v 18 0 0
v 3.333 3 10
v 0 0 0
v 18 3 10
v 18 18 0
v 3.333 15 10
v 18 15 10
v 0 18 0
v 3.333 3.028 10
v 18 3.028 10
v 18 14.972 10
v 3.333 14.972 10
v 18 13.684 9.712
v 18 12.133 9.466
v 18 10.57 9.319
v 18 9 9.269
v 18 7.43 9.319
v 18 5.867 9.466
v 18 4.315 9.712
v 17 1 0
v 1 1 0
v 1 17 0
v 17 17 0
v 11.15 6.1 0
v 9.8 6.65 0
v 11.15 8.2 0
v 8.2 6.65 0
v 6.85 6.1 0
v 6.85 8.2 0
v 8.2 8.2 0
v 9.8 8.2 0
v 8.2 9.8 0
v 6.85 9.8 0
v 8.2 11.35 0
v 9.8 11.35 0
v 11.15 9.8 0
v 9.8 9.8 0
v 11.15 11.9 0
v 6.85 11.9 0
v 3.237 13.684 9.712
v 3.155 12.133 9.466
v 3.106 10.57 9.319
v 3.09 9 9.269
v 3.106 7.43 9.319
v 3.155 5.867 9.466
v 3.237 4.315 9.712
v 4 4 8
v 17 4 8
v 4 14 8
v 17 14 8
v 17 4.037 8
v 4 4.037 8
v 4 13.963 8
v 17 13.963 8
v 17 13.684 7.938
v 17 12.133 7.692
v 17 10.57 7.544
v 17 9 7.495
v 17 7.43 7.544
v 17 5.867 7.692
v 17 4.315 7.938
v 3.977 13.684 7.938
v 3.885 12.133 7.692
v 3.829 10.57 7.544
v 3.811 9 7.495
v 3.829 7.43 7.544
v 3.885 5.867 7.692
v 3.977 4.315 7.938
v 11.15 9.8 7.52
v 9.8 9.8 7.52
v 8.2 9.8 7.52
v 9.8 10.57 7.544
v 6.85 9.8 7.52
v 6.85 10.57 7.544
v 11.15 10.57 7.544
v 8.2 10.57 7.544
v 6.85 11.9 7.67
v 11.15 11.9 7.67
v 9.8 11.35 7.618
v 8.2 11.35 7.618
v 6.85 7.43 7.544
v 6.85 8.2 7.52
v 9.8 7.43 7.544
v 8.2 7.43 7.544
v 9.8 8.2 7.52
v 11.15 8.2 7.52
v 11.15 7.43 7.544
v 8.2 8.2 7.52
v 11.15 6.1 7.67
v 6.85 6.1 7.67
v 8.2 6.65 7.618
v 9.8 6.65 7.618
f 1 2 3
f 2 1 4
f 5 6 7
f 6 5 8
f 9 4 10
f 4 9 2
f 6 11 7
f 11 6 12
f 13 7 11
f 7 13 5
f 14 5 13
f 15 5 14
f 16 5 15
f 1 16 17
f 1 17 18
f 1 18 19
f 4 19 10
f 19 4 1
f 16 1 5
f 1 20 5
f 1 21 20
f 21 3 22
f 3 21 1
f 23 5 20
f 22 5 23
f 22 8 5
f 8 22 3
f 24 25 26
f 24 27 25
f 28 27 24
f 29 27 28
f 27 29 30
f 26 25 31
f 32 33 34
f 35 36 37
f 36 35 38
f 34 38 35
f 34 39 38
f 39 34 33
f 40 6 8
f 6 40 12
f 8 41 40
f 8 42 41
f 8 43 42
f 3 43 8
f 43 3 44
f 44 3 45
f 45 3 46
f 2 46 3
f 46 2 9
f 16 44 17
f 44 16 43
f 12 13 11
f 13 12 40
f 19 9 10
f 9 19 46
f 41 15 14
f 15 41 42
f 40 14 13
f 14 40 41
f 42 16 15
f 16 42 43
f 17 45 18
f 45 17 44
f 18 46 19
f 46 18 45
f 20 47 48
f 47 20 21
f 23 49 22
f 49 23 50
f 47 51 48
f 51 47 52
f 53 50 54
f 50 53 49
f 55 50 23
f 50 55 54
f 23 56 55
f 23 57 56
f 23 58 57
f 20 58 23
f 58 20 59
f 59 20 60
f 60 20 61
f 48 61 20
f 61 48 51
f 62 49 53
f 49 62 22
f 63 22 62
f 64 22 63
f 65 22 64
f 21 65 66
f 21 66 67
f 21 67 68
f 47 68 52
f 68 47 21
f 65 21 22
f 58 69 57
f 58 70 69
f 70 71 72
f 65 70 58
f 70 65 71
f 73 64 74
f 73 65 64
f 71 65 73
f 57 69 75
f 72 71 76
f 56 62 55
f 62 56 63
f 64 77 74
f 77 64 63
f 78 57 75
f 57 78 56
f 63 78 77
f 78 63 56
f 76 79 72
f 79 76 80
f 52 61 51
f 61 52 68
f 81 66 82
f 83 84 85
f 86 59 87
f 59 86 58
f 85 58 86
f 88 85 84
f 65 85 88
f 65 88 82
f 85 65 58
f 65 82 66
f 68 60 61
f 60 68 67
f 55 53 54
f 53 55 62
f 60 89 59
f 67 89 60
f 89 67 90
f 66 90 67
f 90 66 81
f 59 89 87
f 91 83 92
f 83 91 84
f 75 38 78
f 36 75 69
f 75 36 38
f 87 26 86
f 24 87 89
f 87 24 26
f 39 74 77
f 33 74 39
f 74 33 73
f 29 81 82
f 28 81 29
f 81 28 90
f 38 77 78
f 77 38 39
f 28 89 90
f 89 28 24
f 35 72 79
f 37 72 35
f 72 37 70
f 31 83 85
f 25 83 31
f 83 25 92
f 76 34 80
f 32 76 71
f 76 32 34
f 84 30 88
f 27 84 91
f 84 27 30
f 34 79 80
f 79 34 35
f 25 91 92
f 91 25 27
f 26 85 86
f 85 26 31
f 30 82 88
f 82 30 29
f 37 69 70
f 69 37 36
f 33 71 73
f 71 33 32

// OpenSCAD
$fn = 100;

module mountingCross(width, length, barWidth, height, useSupport = false)
{
    diameter = 6;
    barLength = 4.7;
    
    rotate(90)
    difference()
    {
        //cylinder(d = diameter, h = height);
        union()
        {
            //cylinder(d = diameter, h = height);
            translate(- [width / 2, length / 2, 0])
            cube([width, length, height], centered=true);

            if(useSupport)
            {
                translate([0,-50,0])
                cube([0.5, 100, 2 * height / 3]);
            }
        }

        translate([-barWidth / 2, -barLength / 2, 0])
        cube([barWidth, barLength, height]);
        
        
        rotate(90)
        {
            translate([-barWidth / 2, -barLength, 0])
            cube([barWidth, barLength * 2, height]);
        }
    }
}
module stabilizerMounts(size, holeSize, interDistance, startHeight)
{
    for(i = [-1, 1])
    {
        translate([-size[0] / 2, interDistance * i - size[1] / 2, startHeight])
        difference()
        {
            cube(size);
            translate([size[0] / 2 - holeSize[0] / 2, size[1] / 2 - holeSize[1] / 2, 0])
            cube([holeSize[0], holeSize[1], size[2]]);
            //rotate(90)
            //children(0);
        }
    }
}

module keycapShape(width, length, height, topWidth, topLength, roundTop = true)
{
    //Parameters
    //width = 18;
    //length = 18;
    //height = 12;
    roundoffRadius = 25;

    //Calculating the angles of the "cutters"

    sideDifference = (width - topWidth) / 2;
    sideCutAngle = atan(height / sideDifference);
    frontDifference = (length - topLength);
    frontCutAngle = atan(length / frontDifference);
    
    roundoffHeight = sqrt(pow(roundoffRadius, 2) - pow(topLength / 2, 2));

    difference()
    {
        cube([width, length, height]);

        translate([-1,0,0])
        for(i = [0 , 1])
        {
            translate([0,i * length,0])
            mirror([0,i,0])
            rotate(sideCutAngle, [1,0,0])
            cube([width * 2, length * 2, height * 2]);
        }
        
        //Cutting of the front face
        translate([-1,0,0]);
        rotate(-frontCutAngle, [0,1,0])
        cube([width * 2, length * 2, height * 2]);

        if(roundTop)
        {
            //Rounding off the top
            translate([0, length / 2, height + roundoffHeight])
            rotate(90, [0,1,0])
            cylinder(r = roundoffRadius, h = length * 2);
        }
    }
    
}

module supportV(width, length, height)
{
    cubeWidth = sqrt(pow(width / 2, 2) + pow(height, 2));
    angle = atan(height / (width / 2));

    translate([0, -length / 2, -height])
    for(i = [0,1])
    {
        mirror([i,0,0])
        rotate(-angle, [0,1,0])
        cube([cubeWidth, length, height]);
    }
}

module supportTriangle(width, length, height)
{
    intersection()
    {
        supportV(width, length, height);
        rotate(90)
        supportV(width, length, height);
    }
}

module keycap(outerSize, topSize, roundTop = true, useSupport = true)
{
    width = outerSize[0];
    length = outerSize[1];
    //height = 12;
    height = 10;
    topWidth = topSize[0];
    topLength = topSize[1];

    thickness = 1;
    supportHeight = 4;

    crossStartHeight = 0;

    intersection()
    {
        keycapShape(width, length, height, topWidth, topLength, roundTop = roundTop);
        union()
        {
            difference()
            {
                keycapShape(width, length, height, topWidth, topLength, roundTop = roundTop);
                translate([thickness, thickness, 0])
                keycapShape(width - thickness * 2, length - thickness * 2, height - thickness * 2, topWidth - thickness * 2, topLength - thickness * 2, roundTop = roundTop);
            }

            if(useSupport)
            {
                //Support structure
                translate([width - topWidth / 2 - thickness, length / 2, height - thickness * 2])
                supportTriangle(topWidth, topLength, supportHeight);
            }

            //translate([width / 2 - 2, length / 2 - 2, 0])
            //cube([4, 4, height]);
            translate([width / 2, length / 2, crossStartHeight])
            {
                rotate(90)
                children(0);
            }

            
            translate([width/2 -2.5, length / 2-2.5,0])
            difference()
            {
                cube([5,5,crossStartHeight]);
                translate([1,0,0])
                cube([3,6,crossStartHeight]);
            }
        }
    }
}


crossWidth = 1.5;

STD_OUTER_SIZE = [18, 18];
STD_INNER_SIZE = [12, 12];

STD_OUTER_SIZE = [18, 18];
STD_INNER_SIZE = [12, 12];

R_SHIFT_OUTER = [STD_OUTER_SIZE[0], STD_OUTER_SIZE[1]];
R_SHIFT_INNER = [STD_INNER_SIZE[0], STD_INNER_SIZE[1]];

MOUNT_OUTER_SIZE = [4.3, 5.8, 8]; //Does not affect the keycaps for now
MOUNT_CAP_SIZE = [4.3, 5.8, 3];

ST_MOUNT_OUTERSIZE = [10,5,100];
ST_MOUNT_HOLE_SIZE = [7,1];
ST_INTER_DISTANCE = 14;
ST_START_HEIGHT = 3;

keycap(STD_OUTER_SIZE, STD_INNER_SIZE, roundTop = true, useSupport = false)
mountingCross(MOUNT_OUTER_SIZE[0], MOUNT_OUTER_SIZE[1], 1.6, MOUNT_OUTER_SIZE[2], useSupport = false)
cube([0,0,0]);

//keycap(R_SHIFT_OUTER, R_SHIFT_INNER, roundTop = false, useSupport = true)
//union()
//{
//    rotate(90)
//    mountingCross(4, 5.5, crossWidth, 10, useSupport = false)
//    stabilizerMounts(ST_MOUNT_OUTERSIZE, ST_MOUNT_HOLE_SIZE, ST_INTER_DISTANCE, ST_START_HEIGHT);
//    //mountingCross(4, 5.5, crossWidth, 10, useSupport = false);
//}


//mountingCross(MOUNT_OUTER_SIZE[0], MOUNT_OUTER_SIZE[1], 1.6, MOUNT_OUTER_SIZE[2], useSupport = false);
//rotate(-90)
//translate([-MOUNT_CAP_SIZE[0] / 2, -MOUNT_CAP_SIZE[1] / 2, MOUNT_OUTER_SIZE[2] - MOUNT_CAP_SIZE[2]])
//{
//    cube(MOUNT_CAP_SIZE);
//}
